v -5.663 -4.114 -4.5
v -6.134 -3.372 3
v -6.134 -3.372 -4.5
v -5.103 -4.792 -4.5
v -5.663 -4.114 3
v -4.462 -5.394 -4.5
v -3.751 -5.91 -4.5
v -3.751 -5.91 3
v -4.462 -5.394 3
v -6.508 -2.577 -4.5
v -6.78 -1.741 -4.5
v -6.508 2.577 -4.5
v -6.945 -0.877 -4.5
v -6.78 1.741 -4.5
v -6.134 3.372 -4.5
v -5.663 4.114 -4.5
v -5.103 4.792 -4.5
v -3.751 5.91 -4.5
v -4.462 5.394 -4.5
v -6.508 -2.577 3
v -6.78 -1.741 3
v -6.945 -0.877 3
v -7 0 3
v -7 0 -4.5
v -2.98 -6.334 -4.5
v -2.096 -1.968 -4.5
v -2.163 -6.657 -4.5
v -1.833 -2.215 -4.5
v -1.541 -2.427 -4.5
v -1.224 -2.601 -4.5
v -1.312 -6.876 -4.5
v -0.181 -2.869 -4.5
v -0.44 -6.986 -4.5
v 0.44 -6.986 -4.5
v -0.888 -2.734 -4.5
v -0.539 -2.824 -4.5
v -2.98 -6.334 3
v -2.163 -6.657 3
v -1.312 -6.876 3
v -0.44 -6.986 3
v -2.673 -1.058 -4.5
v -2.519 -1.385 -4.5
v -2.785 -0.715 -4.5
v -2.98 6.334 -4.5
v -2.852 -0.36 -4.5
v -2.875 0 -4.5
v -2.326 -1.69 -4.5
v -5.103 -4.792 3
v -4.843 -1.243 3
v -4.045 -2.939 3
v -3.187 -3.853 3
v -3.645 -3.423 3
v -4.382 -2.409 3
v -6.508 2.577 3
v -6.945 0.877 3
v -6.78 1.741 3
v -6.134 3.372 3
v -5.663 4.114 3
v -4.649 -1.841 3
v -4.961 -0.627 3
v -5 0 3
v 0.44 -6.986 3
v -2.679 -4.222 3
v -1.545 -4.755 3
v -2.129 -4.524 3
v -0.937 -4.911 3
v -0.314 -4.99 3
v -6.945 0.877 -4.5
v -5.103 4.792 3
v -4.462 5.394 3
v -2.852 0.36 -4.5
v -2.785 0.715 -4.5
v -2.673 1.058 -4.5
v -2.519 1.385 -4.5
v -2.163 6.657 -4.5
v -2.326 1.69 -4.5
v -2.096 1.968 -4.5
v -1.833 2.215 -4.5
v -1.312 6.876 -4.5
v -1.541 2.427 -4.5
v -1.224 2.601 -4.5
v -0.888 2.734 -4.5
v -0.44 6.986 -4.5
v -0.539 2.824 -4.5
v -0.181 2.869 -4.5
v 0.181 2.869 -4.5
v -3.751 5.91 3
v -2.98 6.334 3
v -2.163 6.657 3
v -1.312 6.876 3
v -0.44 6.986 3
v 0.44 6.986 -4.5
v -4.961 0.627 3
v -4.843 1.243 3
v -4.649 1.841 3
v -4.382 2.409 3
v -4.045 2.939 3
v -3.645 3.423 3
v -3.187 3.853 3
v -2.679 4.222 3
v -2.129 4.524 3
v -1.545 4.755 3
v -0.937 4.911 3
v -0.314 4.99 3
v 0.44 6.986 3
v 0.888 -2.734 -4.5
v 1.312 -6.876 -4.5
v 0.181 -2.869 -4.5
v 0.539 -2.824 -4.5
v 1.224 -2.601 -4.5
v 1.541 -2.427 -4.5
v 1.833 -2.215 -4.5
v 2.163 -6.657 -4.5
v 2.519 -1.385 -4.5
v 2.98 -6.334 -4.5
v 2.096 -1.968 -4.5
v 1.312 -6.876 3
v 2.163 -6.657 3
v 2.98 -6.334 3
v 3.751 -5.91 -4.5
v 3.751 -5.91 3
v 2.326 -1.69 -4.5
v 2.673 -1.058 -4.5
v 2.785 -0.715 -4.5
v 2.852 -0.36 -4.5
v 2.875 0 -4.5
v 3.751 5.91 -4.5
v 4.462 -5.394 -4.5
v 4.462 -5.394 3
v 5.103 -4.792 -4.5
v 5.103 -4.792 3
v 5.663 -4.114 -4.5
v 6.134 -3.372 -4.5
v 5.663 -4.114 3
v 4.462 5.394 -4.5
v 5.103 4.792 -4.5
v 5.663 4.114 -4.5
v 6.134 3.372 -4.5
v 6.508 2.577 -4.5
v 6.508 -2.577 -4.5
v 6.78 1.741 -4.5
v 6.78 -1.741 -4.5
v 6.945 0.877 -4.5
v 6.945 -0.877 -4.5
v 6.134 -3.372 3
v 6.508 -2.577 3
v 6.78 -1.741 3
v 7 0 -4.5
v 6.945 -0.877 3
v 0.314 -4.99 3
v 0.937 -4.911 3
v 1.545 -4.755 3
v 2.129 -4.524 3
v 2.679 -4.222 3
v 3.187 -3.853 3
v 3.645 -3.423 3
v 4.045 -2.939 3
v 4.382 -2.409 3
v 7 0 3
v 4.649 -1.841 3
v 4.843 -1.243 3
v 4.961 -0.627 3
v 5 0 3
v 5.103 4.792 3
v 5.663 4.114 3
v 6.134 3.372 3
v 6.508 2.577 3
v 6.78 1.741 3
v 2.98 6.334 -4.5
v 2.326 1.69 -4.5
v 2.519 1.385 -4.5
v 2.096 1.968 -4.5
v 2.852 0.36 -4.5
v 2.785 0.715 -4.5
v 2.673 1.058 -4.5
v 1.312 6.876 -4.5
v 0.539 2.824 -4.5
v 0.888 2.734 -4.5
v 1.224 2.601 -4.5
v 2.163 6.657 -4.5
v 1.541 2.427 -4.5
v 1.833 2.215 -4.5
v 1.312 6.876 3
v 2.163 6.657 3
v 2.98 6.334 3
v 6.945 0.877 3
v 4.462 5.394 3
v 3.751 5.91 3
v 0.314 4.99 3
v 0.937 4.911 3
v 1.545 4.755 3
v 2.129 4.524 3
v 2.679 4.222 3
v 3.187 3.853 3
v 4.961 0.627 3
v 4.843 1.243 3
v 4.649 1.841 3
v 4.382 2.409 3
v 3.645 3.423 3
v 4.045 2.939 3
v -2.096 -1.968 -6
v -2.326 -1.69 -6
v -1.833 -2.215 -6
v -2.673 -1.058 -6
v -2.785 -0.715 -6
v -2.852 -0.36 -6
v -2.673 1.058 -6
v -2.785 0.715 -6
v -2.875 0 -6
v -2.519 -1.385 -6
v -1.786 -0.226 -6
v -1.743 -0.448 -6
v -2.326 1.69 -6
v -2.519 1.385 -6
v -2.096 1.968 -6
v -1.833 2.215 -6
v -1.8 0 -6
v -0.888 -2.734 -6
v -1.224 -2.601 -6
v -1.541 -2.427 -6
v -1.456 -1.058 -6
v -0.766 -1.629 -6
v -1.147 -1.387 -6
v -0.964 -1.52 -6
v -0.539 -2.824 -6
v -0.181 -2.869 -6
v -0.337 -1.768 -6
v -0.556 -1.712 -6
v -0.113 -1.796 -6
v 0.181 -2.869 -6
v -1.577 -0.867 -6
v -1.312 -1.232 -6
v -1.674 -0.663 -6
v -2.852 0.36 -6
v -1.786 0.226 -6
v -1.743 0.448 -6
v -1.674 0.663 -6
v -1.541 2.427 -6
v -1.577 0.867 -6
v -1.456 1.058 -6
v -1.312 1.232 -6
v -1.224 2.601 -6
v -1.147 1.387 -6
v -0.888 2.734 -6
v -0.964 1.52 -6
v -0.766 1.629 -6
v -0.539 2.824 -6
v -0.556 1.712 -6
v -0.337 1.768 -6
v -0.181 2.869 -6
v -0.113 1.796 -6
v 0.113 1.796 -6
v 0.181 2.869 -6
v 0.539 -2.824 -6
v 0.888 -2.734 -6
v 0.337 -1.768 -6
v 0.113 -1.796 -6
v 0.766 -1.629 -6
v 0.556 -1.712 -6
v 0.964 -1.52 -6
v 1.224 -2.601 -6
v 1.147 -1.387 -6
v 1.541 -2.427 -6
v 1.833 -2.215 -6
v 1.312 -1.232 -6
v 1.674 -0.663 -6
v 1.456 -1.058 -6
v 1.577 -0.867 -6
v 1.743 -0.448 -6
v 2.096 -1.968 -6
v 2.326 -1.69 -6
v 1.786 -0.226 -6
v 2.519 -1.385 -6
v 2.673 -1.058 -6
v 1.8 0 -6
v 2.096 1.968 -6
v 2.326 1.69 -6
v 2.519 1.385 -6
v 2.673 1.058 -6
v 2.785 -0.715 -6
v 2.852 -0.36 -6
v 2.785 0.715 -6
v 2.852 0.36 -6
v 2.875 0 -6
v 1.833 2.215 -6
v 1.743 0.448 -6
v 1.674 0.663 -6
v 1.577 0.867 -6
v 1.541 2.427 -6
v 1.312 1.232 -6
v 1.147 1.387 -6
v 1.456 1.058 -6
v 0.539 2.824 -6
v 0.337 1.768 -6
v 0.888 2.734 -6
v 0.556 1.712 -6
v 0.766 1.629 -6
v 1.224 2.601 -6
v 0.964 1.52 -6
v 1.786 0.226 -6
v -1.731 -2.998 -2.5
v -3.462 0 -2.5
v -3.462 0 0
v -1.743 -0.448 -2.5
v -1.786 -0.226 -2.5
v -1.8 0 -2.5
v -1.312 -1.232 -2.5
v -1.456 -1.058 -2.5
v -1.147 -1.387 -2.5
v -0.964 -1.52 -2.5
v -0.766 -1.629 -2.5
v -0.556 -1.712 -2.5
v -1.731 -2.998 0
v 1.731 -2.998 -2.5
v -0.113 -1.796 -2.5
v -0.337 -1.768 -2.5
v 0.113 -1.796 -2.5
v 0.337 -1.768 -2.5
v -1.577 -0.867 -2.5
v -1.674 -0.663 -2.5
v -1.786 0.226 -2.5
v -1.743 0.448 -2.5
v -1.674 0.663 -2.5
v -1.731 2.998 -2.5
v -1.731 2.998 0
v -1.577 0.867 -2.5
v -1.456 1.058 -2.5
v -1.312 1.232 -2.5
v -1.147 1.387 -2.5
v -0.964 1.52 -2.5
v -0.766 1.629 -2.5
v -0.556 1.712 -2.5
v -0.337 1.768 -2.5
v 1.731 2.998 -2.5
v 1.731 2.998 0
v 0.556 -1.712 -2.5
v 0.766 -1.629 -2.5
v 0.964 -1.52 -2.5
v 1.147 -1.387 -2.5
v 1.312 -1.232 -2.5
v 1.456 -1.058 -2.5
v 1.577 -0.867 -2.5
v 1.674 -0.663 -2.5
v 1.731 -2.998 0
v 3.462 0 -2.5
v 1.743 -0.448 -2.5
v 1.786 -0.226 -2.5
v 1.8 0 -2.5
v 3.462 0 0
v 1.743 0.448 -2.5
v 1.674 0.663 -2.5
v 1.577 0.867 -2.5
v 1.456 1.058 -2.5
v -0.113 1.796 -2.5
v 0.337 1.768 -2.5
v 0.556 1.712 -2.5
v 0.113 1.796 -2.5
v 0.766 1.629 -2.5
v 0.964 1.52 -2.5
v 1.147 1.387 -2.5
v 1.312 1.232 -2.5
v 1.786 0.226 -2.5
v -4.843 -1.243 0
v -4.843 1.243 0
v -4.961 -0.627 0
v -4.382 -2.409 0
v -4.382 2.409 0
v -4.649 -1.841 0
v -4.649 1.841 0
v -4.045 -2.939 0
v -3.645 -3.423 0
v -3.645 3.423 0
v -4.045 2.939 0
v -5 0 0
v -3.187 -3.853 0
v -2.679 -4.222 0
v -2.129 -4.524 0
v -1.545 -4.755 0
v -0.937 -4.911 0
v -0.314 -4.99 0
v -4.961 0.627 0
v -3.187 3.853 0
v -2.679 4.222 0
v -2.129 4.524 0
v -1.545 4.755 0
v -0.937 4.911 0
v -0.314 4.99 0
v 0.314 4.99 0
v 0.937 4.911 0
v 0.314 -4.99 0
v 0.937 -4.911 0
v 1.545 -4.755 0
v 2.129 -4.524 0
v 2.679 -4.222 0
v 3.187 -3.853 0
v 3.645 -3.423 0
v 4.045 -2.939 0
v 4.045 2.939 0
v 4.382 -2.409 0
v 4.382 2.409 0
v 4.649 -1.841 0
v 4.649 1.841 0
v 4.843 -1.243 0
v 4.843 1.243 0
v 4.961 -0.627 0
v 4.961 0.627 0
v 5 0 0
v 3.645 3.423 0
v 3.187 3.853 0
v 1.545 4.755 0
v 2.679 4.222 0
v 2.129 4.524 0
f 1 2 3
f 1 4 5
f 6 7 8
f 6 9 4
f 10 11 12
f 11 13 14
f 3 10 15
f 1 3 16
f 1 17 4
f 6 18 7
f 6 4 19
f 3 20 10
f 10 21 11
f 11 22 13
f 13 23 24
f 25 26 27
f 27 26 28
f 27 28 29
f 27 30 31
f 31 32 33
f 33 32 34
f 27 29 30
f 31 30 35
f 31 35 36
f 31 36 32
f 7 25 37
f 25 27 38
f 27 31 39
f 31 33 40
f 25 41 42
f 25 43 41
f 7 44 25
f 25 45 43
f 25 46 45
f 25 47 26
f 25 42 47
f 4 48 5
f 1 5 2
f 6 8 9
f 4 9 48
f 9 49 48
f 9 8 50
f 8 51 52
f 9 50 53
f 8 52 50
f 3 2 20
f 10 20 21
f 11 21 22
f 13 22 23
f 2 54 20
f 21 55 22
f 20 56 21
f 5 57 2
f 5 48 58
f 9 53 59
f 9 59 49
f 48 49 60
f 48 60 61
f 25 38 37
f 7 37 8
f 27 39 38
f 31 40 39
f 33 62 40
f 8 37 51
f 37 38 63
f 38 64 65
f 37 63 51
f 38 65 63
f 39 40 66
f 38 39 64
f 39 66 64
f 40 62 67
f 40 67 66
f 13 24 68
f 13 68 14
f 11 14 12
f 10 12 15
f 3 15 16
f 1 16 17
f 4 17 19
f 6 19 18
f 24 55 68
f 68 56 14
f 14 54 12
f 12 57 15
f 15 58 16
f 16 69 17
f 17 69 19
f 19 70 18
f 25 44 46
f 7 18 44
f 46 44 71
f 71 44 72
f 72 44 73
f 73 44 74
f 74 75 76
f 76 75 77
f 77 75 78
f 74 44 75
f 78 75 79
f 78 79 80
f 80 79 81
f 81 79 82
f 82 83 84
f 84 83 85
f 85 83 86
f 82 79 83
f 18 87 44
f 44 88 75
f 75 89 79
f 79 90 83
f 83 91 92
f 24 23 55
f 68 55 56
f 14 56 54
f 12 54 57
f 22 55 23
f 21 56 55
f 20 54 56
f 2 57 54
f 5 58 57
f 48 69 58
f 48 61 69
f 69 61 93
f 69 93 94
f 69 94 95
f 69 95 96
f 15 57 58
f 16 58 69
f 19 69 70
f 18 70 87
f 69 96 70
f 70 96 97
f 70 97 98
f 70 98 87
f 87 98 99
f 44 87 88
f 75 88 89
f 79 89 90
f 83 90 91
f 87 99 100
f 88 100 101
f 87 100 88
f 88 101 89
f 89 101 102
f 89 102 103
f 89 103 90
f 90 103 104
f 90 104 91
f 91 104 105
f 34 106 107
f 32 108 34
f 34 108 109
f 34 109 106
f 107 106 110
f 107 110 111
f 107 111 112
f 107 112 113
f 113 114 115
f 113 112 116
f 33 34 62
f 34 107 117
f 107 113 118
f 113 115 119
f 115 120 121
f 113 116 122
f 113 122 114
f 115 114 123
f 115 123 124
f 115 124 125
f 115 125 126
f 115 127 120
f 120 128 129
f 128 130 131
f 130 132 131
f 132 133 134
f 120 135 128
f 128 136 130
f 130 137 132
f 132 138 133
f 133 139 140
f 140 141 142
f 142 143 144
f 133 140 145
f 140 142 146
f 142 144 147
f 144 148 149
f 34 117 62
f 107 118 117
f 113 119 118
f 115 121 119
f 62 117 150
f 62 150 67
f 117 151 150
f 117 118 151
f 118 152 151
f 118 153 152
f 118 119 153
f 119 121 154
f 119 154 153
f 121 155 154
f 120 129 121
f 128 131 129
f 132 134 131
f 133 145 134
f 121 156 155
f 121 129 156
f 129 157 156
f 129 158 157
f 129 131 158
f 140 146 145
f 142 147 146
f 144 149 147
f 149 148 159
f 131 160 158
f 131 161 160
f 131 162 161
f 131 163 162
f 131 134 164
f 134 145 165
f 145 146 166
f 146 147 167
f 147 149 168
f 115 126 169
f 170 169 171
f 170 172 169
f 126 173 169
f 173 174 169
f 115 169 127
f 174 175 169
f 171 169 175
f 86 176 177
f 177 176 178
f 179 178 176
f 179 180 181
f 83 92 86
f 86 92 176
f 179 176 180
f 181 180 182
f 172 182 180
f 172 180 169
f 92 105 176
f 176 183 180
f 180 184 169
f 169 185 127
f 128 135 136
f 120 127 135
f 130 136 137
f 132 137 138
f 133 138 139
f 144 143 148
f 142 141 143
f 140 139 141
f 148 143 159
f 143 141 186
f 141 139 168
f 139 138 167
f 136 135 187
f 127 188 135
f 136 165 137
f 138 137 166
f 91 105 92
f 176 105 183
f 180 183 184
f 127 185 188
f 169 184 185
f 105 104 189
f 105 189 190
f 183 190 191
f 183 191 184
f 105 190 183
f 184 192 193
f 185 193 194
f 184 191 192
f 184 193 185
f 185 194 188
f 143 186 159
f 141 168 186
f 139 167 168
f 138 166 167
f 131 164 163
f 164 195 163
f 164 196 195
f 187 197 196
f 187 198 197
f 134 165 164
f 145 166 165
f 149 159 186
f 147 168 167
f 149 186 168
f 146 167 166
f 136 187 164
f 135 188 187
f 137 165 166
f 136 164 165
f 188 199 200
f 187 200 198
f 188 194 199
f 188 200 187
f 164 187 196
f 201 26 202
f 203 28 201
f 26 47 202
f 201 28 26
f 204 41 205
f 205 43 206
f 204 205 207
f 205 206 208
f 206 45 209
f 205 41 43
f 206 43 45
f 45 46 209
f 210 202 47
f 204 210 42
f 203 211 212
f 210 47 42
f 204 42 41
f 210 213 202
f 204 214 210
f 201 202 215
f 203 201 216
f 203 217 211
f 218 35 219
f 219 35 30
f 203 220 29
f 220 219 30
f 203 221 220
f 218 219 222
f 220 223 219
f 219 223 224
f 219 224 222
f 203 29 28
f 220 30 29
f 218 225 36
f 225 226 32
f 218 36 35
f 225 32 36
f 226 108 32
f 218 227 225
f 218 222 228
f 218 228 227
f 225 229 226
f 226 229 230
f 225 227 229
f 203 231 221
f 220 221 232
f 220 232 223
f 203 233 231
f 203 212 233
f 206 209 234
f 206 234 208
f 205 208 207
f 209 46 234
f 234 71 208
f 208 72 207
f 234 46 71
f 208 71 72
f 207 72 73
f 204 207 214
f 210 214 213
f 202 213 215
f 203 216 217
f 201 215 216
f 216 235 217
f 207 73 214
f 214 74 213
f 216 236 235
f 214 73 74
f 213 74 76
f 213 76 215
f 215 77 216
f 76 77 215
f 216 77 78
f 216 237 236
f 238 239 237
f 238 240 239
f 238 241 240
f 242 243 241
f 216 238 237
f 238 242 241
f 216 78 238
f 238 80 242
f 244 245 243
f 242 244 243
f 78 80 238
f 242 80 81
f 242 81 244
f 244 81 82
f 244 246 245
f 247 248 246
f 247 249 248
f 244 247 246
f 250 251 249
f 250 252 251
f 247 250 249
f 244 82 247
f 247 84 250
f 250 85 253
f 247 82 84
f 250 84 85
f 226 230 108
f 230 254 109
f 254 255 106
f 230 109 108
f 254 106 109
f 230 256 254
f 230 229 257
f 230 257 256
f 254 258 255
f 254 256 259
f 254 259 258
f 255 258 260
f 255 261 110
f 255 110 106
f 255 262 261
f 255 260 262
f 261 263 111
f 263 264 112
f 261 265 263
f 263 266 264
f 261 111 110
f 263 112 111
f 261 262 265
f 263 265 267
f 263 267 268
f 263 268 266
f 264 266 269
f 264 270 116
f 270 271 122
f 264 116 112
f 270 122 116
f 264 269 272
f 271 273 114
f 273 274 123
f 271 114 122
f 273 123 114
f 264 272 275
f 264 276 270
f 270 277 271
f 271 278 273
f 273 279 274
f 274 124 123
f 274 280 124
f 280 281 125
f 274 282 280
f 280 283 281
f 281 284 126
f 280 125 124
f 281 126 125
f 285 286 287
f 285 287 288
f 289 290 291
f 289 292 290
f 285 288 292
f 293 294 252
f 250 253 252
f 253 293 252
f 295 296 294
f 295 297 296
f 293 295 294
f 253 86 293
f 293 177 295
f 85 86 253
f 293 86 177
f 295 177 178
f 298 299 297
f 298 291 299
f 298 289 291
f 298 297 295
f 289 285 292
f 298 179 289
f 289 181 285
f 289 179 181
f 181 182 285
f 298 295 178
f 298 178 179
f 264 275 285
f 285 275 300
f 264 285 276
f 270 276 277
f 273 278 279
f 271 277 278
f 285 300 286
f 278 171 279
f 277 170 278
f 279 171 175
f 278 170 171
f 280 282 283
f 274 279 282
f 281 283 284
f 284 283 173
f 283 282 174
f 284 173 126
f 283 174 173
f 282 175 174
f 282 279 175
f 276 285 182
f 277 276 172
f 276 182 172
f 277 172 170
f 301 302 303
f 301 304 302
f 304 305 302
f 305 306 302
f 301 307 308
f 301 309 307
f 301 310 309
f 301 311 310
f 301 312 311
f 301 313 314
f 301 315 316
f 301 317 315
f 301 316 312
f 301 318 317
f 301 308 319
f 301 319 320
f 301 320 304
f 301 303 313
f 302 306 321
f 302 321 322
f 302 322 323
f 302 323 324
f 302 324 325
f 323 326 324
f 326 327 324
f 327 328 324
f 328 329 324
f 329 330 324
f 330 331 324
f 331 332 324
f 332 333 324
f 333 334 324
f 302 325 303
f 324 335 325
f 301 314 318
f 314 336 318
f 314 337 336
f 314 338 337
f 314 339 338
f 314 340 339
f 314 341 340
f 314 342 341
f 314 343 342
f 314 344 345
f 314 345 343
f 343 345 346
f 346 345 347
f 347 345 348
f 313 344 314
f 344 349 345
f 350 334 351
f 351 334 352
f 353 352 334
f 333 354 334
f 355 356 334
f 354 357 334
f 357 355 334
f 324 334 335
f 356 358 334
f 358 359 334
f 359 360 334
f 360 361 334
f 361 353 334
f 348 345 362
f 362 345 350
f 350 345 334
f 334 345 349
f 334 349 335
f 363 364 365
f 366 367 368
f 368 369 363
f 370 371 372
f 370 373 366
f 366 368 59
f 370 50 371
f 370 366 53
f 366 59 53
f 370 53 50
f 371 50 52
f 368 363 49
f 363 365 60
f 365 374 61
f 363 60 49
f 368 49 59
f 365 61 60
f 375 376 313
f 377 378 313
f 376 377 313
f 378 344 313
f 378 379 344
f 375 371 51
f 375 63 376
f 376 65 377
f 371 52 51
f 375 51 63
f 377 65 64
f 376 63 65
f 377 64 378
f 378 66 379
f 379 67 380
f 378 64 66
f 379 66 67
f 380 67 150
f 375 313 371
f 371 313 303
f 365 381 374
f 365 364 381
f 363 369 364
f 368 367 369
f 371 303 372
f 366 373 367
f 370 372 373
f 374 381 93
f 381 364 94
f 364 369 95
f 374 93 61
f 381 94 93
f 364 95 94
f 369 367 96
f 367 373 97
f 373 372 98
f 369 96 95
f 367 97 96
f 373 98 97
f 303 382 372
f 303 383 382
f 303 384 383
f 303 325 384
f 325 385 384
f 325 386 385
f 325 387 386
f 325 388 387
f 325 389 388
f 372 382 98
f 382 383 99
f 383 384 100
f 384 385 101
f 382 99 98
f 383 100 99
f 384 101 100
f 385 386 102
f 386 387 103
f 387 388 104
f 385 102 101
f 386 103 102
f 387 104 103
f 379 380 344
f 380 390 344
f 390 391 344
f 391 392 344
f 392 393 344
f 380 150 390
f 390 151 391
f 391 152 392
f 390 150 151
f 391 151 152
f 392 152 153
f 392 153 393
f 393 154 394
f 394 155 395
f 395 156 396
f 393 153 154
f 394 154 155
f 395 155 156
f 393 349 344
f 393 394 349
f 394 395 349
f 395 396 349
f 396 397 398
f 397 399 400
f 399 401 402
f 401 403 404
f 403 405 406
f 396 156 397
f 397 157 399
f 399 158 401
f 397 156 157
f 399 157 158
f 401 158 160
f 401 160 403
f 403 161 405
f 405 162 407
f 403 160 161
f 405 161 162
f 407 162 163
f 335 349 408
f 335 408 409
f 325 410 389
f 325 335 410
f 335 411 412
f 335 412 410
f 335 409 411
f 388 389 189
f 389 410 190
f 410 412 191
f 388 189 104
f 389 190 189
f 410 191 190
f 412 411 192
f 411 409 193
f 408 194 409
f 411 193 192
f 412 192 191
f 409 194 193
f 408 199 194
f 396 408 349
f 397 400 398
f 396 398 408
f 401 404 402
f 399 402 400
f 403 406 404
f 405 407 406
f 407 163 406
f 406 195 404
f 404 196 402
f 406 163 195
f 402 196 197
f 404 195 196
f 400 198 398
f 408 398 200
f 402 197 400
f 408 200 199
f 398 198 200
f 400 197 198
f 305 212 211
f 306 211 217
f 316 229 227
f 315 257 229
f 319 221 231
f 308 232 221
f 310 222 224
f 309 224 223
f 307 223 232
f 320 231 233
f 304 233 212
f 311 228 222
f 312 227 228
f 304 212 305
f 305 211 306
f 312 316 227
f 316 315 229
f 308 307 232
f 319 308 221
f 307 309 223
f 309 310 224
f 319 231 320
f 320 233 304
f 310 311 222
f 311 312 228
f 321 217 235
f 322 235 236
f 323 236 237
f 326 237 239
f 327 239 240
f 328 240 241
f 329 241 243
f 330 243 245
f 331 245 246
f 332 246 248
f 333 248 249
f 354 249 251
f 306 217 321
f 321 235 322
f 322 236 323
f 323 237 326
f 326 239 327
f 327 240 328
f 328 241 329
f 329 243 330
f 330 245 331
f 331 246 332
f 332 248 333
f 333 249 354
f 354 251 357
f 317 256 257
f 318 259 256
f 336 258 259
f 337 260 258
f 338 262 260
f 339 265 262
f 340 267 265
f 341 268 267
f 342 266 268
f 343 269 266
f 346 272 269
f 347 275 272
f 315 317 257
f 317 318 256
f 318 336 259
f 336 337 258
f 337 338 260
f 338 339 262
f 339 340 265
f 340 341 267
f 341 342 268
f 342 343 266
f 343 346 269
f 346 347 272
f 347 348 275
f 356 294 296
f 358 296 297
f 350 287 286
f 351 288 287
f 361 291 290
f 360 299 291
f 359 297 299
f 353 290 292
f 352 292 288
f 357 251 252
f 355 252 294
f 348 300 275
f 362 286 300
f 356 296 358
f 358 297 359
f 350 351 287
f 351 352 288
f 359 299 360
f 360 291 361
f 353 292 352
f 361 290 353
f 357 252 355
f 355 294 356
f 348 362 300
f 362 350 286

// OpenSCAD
$fn = 50;

difference() {
	union() {
		translate(v = [0, 0, -4.5]) {
			cylinder(h = 7.5, r = 7.0);
		}
		#translate(v = [0, 0, -6.0]) {
			cylinder(h = 6, r = 2.875);
		}
	}
	union() {
		translate(v = [0, 0, 0]) {
			rotate(a = [0, 0, 0]) {
				difference() {
					union() {
						translate(v = [0, 0, -2.5]) {
							linear_extrude(height = 2.5) {
								polygon(points = [[3.4619999999999997, 0.0], [1.7310000000000003, 2.9981799479017264], [-1.7309999999999992, 2.9981799479017264], [-3.4619999999999997, 4.2397272186481365e-16], [-1.7310000000000014, -2.998179947901726], [1.7309999999999977, -2.9981799479017277]]);
							}
						}
					}
					union();
				}
			}
		}
		#cylinder(h = 3, r = 5.0);
		#translate(v = [0, 0, -100.0]) {
			cylinder(h = 200, r = 1.8);
		}
	}
}
